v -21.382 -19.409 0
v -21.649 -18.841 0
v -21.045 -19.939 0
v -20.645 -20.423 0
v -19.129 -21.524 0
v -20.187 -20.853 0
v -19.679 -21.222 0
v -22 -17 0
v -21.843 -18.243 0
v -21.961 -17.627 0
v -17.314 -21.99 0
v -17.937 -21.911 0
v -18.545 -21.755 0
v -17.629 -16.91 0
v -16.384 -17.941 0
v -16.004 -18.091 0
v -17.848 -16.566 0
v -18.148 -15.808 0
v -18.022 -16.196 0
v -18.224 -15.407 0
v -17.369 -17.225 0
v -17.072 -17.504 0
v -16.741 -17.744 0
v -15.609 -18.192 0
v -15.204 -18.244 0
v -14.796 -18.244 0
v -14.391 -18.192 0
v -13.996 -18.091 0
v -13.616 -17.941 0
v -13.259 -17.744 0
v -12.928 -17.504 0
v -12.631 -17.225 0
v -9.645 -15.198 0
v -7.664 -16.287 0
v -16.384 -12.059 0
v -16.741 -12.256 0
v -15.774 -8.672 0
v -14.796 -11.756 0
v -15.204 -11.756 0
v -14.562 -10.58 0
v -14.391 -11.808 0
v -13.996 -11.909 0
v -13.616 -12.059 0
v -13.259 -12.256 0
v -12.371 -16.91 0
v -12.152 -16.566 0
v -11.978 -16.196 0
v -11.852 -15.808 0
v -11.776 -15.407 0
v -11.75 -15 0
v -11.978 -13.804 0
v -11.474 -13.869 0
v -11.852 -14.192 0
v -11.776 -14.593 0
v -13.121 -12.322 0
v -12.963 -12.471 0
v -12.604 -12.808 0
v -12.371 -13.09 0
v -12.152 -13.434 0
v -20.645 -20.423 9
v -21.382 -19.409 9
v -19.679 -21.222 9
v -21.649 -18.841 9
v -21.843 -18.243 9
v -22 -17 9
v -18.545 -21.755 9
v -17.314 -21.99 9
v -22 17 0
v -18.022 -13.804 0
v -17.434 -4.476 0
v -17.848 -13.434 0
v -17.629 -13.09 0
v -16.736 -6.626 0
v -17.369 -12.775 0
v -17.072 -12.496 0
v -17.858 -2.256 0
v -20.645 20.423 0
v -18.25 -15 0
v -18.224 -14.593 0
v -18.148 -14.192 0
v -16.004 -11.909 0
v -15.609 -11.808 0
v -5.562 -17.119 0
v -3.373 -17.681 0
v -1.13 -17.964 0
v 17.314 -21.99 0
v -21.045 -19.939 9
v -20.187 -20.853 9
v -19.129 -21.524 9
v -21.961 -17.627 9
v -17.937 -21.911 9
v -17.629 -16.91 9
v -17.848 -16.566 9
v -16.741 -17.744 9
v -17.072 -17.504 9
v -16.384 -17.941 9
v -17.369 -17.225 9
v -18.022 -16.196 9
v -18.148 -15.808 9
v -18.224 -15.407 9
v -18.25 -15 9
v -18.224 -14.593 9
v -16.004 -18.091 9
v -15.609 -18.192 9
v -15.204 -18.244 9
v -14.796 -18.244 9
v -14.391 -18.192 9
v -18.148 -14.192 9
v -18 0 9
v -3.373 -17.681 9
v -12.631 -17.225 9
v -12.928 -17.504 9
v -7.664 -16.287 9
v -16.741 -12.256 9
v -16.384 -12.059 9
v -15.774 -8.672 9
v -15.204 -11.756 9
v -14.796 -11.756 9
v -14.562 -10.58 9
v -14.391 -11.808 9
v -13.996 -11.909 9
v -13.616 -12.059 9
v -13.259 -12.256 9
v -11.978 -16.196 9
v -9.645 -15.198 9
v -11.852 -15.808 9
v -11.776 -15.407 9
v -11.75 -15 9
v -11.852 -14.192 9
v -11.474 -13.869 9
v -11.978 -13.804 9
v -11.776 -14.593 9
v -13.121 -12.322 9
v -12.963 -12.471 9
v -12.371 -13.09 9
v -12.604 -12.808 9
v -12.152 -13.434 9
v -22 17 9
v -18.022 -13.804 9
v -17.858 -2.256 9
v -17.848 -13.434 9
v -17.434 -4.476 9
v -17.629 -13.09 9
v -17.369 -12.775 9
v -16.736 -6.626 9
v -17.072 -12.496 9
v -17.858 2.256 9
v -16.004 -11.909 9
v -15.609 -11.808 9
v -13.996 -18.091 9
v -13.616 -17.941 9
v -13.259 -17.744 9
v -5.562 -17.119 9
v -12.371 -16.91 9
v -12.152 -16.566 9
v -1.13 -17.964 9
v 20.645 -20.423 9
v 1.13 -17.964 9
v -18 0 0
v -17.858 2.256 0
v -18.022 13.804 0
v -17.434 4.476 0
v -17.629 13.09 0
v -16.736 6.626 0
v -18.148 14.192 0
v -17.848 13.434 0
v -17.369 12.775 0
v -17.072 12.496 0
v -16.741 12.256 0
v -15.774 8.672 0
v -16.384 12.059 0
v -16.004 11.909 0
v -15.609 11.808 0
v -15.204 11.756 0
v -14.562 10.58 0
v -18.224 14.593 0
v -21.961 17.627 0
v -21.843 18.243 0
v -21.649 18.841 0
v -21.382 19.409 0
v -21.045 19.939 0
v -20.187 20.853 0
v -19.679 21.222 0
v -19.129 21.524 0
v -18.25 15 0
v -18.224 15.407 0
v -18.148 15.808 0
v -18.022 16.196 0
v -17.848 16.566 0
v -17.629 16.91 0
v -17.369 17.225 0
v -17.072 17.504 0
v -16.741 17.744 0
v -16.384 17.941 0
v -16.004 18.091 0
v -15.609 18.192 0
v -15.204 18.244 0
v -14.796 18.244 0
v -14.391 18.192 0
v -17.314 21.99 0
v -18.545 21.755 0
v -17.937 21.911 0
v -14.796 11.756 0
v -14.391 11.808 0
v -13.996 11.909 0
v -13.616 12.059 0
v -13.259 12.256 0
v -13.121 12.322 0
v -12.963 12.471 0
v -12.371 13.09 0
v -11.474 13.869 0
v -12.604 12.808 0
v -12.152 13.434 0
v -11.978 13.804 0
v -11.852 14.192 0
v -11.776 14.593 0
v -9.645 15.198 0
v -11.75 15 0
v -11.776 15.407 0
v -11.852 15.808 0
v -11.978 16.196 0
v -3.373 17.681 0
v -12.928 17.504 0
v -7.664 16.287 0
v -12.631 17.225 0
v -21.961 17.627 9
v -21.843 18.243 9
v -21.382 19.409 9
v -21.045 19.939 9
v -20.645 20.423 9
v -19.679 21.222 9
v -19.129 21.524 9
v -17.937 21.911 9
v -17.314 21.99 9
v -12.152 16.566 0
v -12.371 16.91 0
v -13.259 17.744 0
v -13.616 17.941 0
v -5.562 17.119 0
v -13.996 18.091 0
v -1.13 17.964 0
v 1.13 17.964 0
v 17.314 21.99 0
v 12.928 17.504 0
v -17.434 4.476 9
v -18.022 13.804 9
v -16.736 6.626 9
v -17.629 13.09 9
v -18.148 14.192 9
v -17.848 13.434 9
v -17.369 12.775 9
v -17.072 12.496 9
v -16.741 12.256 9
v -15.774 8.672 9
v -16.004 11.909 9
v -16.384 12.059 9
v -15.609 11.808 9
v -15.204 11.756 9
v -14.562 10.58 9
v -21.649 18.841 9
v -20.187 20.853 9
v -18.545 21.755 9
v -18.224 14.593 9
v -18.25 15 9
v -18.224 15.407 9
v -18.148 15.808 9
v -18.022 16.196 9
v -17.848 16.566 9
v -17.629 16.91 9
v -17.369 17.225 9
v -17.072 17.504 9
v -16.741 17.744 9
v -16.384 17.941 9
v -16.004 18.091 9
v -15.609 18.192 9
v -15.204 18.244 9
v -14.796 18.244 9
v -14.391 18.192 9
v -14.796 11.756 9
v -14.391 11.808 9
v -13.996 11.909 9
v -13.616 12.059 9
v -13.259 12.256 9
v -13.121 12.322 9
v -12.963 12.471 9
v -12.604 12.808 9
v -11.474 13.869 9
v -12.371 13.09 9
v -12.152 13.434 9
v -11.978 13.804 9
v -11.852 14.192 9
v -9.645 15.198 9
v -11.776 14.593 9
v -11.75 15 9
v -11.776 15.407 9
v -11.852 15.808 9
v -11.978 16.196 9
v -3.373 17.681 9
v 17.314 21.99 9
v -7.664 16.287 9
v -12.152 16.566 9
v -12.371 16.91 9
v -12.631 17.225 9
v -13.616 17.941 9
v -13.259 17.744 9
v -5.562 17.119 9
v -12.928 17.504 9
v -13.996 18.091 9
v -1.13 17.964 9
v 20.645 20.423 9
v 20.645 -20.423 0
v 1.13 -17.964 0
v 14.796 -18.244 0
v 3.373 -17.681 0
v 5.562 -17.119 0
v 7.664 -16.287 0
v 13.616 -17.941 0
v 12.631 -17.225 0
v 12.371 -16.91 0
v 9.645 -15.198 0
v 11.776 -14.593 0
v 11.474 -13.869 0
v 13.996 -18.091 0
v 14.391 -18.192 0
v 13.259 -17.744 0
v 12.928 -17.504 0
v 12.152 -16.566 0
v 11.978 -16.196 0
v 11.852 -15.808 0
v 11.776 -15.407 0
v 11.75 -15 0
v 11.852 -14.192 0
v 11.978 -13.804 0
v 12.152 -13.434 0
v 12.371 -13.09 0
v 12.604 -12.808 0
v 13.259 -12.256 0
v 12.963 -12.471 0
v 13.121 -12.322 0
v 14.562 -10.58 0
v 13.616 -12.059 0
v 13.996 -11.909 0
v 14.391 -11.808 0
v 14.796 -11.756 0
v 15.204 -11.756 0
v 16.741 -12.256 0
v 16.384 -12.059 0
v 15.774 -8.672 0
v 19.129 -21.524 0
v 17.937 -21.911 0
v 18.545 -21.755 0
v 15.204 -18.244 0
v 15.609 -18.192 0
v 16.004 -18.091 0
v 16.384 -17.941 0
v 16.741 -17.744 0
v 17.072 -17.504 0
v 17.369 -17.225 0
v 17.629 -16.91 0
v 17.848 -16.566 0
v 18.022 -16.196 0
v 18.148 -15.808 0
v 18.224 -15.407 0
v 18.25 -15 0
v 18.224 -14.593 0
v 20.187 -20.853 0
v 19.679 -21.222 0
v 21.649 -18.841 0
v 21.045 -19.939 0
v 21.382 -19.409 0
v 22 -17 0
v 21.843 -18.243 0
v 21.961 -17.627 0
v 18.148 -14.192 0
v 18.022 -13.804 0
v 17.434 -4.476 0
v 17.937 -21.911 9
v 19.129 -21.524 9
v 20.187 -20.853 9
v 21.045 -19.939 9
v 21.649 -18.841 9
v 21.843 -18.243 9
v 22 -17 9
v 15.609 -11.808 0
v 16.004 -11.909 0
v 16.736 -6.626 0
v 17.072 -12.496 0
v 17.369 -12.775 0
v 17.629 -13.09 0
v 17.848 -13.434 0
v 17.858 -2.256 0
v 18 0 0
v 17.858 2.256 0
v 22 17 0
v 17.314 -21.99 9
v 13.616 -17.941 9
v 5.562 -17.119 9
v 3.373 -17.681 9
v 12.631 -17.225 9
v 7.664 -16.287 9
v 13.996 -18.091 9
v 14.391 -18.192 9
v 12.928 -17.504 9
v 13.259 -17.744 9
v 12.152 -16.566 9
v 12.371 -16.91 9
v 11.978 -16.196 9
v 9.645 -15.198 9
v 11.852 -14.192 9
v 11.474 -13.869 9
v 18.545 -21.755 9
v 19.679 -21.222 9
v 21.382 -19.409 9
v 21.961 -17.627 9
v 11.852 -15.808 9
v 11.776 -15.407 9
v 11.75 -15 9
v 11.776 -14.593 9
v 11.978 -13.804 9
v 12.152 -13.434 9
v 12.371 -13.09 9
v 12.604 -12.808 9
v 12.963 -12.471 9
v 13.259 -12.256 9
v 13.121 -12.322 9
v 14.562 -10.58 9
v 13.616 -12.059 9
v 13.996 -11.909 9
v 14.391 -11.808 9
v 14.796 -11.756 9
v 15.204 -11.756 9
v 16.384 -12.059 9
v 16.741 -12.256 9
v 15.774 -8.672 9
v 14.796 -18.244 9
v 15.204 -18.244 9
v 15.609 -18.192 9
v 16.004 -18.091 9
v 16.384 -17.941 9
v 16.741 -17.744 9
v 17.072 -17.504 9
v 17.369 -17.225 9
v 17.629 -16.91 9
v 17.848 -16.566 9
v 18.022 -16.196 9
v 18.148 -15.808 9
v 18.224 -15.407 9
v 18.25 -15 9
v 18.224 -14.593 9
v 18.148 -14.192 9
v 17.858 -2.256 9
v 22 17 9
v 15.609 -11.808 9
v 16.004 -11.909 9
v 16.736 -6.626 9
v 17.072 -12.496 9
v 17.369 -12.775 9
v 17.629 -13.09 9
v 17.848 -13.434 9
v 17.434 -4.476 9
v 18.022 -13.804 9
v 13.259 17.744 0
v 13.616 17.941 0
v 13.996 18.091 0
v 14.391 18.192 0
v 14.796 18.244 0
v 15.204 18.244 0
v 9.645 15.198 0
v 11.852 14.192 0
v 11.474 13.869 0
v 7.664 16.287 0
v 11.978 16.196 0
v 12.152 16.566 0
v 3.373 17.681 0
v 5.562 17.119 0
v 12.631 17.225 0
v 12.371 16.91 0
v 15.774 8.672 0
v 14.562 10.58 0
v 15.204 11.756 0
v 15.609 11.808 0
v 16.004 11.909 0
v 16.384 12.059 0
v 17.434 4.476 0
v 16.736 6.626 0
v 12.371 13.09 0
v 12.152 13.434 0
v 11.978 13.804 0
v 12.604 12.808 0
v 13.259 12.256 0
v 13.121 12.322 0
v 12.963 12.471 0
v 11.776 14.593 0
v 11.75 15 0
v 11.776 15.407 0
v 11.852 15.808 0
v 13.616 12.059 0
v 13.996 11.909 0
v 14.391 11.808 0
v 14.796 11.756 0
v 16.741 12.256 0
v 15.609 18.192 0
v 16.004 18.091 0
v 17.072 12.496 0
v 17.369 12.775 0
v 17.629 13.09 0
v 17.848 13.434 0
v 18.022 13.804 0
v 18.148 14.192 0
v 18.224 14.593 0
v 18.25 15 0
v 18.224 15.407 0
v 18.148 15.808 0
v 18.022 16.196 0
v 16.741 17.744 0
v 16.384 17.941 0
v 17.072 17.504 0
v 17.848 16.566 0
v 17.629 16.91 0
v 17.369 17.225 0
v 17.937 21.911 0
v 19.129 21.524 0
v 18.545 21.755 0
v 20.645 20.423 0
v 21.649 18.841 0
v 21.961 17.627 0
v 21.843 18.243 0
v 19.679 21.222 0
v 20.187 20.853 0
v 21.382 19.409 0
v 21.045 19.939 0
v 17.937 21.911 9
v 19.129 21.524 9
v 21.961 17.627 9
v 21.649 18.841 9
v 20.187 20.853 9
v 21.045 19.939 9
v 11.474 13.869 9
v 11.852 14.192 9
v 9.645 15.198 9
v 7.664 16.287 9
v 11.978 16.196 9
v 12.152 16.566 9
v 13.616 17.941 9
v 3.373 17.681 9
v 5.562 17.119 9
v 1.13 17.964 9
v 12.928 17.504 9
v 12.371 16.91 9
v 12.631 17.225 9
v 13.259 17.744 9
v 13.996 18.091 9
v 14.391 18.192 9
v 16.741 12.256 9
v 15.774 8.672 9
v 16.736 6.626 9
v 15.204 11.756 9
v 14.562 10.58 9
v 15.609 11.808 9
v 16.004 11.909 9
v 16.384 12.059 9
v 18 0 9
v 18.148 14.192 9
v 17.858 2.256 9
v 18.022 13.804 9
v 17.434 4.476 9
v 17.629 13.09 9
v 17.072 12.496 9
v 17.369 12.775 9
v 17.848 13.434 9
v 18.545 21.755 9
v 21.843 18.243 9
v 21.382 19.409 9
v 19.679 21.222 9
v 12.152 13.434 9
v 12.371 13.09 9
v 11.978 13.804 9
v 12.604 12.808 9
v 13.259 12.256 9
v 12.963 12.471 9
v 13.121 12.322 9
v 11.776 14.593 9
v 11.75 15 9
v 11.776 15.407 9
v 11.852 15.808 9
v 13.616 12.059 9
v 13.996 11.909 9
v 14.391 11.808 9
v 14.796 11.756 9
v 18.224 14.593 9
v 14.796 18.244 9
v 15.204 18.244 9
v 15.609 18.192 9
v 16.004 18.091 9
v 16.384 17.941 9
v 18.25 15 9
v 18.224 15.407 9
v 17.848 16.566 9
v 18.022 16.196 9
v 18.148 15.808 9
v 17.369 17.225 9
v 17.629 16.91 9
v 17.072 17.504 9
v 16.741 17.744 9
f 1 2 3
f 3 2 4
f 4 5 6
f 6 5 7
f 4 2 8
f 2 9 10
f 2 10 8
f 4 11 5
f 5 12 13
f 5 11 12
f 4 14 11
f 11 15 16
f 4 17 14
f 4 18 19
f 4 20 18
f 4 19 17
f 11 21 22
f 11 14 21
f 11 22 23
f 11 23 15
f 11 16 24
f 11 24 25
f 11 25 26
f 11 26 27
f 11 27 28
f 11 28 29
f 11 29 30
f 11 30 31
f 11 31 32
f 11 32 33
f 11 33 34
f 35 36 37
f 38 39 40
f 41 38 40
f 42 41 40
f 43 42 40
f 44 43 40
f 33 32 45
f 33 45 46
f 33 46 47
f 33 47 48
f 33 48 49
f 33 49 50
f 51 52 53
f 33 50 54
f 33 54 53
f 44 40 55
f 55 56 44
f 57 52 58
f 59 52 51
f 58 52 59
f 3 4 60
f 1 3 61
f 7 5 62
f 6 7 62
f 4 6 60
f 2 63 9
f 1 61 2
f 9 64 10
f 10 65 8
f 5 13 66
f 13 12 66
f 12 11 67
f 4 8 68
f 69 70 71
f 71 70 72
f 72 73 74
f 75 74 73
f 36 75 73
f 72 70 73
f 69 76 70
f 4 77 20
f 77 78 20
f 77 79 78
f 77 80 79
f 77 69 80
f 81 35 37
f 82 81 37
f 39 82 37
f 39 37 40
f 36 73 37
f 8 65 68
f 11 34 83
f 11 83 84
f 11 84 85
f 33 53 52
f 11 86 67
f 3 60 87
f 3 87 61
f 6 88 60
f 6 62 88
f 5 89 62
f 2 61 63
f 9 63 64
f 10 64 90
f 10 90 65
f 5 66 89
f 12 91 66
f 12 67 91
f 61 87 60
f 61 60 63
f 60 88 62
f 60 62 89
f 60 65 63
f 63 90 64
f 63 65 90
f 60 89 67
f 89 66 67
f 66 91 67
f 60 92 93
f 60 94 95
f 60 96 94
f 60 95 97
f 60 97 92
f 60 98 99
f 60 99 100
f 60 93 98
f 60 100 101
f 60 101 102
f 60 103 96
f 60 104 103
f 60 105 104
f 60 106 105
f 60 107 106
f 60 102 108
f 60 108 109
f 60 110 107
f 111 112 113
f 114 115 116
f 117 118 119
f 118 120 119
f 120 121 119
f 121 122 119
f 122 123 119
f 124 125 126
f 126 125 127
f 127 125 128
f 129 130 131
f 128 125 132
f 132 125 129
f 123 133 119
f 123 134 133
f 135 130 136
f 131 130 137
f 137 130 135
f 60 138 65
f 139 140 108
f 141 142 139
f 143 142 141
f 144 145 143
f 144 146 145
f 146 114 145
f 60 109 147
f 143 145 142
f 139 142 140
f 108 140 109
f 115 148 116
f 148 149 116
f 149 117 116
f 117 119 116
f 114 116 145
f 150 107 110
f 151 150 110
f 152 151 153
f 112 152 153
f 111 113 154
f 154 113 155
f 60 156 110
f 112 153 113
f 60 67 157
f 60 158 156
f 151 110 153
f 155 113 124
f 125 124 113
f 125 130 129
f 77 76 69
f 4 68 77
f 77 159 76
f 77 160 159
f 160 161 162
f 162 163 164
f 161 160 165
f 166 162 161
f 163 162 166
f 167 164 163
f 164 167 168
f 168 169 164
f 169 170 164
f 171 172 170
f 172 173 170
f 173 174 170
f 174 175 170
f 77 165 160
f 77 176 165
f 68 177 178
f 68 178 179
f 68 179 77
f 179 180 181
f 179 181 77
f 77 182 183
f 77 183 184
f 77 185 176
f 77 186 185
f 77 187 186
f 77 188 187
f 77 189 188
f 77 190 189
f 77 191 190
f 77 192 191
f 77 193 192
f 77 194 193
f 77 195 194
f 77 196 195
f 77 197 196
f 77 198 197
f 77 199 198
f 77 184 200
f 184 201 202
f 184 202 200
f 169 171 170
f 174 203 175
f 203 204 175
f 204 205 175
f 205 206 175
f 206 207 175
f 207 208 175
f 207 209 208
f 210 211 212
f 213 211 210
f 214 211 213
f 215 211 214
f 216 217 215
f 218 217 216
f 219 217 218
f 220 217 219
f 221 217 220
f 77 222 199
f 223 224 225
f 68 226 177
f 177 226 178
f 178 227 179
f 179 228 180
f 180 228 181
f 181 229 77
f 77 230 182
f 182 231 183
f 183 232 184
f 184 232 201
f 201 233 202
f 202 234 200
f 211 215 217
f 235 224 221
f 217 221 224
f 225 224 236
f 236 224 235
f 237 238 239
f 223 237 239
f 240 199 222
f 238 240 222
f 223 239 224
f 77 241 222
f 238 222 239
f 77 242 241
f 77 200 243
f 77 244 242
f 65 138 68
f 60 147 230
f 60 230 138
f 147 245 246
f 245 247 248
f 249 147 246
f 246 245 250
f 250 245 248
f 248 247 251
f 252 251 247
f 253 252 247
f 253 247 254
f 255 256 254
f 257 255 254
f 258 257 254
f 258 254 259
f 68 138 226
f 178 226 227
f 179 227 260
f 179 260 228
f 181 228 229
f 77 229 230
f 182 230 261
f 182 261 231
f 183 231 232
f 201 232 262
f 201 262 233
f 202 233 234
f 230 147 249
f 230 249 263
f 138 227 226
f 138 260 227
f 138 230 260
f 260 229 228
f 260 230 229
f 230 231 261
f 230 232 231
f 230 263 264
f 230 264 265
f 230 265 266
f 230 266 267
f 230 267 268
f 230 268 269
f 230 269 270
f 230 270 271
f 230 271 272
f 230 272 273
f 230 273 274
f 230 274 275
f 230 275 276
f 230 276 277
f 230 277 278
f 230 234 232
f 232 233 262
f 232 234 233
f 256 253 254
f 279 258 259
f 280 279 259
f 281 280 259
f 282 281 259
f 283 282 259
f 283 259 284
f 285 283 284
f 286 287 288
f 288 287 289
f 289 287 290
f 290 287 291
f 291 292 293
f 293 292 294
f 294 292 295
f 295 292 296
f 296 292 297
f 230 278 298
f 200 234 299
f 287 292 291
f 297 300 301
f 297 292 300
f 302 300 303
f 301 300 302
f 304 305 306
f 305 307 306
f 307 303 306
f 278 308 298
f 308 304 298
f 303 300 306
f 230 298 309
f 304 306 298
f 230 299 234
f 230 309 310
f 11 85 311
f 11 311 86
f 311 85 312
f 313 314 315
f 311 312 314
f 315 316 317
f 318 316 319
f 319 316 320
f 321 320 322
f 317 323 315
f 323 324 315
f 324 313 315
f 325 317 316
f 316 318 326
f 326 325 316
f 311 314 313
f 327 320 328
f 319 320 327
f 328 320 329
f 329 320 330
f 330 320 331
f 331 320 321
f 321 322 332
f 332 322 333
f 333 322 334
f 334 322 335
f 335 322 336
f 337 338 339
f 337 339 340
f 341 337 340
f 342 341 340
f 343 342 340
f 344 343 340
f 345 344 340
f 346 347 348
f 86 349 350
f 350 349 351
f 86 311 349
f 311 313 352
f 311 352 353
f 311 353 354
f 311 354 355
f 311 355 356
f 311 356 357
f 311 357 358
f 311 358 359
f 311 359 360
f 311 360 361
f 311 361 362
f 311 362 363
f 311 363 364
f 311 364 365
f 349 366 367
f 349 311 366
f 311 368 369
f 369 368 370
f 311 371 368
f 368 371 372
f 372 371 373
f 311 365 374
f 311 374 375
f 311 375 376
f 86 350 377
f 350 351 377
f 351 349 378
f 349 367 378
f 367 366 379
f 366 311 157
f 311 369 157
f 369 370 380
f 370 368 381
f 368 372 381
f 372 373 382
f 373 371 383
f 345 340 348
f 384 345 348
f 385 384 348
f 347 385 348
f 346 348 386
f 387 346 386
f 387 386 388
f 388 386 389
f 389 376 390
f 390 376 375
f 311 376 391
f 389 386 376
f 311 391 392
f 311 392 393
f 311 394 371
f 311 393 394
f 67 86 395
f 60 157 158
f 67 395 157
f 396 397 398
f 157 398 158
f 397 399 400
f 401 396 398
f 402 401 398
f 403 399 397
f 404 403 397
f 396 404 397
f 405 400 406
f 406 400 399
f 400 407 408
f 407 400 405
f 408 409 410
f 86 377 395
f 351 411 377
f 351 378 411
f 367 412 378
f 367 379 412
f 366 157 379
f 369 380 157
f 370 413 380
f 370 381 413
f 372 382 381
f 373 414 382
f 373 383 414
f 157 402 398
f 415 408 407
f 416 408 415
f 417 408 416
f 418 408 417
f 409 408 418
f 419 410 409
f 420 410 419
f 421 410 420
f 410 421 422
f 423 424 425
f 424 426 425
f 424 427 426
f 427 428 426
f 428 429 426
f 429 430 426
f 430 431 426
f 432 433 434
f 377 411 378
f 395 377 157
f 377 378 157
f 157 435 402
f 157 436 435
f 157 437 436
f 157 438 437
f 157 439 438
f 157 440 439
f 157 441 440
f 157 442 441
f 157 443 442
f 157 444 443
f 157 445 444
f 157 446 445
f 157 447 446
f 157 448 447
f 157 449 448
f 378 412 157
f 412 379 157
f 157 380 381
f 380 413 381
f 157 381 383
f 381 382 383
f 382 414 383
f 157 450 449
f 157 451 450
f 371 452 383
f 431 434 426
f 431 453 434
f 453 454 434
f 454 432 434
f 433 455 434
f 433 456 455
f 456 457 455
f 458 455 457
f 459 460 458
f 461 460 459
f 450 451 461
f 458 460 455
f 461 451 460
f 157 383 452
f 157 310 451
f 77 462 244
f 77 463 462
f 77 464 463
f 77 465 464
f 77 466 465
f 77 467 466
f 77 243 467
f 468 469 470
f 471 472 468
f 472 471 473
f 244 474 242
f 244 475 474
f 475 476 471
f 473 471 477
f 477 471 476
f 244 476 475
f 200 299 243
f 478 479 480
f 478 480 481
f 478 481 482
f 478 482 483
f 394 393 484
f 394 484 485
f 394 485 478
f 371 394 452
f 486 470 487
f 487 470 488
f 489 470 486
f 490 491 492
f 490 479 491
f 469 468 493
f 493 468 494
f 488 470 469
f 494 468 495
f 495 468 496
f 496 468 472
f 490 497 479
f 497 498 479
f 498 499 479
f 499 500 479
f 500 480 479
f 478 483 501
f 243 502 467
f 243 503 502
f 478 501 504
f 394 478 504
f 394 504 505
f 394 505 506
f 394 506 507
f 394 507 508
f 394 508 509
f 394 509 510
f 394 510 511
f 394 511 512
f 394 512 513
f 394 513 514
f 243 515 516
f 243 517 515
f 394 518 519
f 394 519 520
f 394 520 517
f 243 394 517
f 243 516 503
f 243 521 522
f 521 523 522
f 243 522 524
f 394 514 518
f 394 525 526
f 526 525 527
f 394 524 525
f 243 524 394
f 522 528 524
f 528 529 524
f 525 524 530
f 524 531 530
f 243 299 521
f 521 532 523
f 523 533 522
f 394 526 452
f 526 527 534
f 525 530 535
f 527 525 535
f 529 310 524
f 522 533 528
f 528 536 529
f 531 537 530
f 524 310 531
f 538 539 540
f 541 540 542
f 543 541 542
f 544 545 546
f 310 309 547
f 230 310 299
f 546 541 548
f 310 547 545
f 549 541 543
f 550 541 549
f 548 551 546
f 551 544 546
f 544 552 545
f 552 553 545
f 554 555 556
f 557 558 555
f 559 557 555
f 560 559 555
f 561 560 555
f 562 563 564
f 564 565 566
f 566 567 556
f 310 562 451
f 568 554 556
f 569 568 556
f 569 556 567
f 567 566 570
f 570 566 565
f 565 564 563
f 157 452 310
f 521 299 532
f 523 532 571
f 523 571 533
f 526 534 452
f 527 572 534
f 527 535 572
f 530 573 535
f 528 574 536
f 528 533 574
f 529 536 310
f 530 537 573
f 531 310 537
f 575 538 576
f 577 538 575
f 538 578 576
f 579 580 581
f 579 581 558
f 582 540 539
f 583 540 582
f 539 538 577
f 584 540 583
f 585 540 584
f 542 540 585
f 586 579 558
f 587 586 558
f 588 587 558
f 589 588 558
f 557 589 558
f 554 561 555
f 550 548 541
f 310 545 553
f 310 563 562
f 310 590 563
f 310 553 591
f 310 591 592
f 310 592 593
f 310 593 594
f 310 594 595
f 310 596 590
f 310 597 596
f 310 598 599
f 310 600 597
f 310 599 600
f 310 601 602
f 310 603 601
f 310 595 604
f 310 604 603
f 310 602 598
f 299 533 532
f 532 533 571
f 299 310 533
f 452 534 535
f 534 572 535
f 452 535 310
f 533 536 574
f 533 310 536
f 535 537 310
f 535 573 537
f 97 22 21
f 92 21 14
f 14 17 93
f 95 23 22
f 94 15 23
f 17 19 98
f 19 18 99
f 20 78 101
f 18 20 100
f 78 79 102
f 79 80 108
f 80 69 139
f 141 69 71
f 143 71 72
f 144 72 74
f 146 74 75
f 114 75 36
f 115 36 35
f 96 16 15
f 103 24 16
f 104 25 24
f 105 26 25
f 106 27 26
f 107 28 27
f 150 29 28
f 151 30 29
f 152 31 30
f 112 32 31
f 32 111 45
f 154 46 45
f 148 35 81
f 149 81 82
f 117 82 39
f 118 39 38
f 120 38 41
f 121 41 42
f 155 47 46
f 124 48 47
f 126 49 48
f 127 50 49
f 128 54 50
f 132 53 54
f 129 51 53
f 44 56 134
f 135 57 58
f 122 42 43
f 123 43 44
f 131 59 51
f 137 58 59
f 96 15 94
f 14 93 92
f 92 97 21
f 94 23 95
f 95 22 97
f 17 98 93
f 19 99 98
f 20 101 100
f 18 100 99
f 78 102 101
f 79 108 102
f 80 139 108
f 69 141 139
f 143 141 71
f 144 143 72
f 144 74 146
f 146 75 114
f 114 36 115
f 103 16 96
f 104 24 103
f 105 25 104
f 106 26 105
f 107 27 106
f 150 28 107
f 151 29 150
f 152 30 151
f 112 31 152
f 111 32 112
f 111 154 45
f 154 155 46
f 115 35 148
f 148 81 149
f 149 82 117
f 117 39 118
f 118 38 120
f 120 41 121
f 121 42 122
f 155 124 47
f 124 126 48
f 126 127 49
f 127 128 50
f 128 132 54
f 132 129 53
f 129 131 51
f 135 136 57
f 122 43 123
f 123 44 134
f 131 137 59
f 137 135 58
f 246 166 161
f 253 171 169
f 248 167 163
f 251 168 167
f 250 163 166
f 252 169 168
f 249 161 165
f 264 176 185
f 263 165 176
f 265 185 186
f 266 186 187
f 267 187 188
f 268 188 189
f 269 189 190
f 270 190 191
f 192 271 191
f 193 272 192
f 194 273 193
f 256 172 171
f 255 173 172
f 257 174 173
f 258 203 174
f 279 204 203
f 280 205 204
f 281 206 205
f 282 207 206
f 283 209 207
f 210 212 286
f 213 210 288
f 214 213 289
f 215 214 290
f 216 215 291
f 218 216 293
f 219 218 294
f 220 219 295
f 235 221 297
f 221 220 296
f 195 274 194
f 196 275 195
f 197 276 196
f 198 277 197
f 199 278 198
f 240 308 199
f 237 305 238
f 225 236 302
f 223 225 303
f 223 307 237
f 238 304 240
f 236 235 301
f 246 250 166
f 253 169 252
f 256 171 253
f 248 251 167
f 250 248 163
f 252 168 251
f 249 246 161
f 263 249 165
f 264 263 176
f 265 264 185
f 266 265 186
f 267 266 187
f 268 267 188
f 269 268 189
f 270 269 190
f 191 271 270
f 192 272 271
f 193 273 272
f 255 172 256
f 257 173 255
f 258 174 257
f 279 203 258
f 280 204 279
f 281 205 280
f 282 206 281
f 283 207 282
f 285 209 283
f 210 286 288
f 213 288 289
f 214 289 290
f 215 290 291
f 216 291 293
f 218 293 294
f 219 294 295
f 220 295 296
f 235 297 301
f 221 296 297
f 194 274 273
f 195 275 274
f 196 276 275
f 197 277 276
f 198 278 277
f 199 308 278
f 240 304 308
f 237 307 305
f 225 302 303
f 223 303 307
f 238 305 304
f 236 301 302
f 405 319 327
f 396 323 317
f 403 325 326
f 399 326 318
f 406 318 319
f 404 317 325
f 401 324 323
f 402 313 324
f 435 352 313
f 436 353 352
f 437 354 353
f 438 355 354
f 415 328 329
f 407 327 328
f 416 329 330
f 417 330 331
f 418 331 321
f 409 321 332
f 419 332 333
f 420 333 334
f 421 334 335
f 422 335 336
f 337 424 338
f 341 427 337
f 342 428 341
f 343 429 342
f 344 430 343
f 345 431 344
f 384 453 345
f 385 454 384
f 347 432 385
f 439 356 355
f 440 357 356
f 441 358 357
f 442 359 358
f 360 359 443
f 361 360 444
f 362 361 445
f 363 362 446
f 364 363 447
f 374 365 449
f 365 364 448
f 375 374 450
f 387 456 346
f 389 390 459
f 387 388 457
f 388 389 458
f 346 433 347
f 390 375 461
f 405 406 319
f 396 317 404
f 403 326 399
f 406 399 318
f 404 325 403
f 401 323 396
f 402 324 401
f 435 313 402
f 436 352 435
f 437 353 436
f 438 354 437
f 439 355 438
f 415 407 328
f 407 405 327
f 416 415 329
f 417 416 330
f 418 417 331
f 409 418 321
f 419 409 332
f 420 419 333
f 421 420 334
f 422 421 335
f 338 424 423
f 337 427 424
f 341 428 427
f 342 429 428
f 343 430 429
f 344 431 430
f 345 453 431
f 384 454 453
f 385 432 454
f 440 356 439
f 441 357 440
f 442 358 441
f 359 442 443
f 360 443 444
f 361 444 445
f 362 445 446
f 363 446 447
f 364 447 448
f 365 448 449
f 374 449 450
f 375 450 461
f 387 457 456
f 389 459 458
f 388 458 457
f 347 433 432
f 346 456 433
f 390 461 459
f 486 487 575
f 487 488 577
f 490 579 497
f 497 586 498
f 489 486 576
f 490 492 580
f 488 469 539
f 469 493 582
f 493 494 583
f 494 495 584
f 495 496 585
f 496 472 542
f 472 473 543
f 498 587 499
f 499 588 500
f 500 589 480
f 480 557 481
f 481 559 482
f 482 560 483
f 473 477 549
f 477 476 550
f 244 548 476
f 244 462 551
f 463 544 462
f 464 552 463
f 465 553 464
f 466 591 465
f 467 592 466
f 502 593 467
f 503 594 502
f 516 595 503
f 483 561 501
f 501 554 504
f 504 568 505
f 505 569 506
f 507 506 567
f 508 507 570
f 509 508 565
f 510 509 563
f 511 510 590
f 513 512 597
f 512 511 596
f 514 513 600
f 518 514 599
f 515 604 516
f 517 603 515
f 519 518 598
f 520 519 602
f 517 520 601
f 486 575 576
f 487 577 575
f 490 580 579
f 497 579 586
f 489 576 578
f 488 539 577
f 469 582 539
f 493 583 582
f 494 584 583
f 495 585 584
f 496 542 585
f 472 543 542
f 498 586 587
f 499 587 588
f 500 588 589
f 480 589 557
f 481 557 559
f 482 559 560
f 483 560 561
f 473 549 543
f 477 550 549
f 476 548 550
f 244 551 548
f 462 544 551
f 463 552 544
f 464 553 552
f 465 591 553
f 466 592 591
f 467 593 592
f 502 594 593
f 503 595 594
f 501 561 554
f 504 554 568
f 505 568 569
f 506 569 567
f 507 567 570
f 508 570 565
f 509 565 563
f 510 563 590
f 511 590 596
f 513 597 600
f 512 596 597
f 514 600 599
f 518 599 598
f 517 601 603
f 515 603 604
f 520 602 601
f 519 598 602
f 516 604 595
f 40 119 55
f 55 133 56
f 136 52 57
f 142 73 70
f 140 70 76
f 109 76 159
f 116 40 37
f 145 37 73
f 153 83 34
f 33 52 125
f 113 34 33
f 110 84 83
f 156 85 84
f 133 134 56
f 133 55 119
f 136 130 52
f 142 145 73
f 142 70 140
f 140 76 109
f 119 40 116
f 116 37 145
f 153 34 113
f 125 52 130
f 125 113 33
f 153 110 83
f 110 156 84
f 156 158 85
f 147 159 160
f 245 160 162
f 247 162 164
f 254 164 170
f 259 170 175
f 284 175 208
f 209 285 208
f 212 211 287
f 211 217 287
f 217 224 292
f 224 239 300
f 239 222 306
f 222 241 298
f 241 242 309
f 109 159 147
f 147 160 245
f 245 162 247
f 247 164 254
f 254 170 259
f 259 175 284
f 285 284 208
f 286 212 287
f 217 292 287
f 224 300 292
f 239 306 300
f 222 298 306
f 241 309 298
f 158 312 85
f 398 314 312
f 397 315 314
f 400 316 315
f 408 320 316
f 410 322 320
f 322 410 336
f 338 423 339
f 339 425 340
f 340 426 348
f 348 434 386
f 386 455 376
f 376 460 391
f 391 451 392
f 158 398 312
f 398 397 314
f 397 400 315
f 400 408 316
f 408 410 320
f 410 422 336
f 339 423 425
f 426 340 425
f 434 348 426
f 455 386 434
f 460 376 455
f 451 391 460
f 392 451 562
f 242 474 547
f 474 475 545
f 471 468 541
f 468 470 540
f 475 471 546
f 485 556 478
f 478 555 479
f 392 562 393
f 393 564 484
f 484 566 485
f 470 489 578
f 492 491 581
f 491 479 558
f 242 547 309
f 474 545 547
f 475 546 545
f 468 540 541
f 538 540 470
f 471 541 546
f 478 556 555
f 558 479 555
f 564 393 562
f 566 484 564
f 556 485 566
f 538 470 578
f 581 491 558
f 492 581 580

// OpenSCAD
$fn = 50;

difference() {
	union() {
		hull() {
			translate(v = [-17.0, 17.0, 0]) {
				cylinder(h = 9, r = 5);
			}
			translate(v = [17.0, 17.0, 0]) {
				cylinder(h = 9, r = 5);
			}
			translate(v = [-17.0, -17.0, 0]) {
				cylinder(h = 9, r = 5);
			}
			translate(v = [17.0, -17.0, 0]) {
				cylinder(h = 9, r = 5);
			}
		}
	}
	union() {
		translate(v = [-15.0, -15.0, -100.0]) {
			cylinder(h = 200, r = 3.25);
		}
		translate(v = [-15.0, 15.0, -100.0]) {
			cylinder(h = 200, r = 3.25);
		}
		translate(v = [15.0, -15.0, -100.0]) {
			cylinder(h = 200, r = 3.25);
		}
		translate(v = [15.0, 15.0, -100.0]) {
			cylinder(h = 200, r = 3.25);
		}
		translate(v = [-15.0, -15.0, -100.0]) {
			cylinder(h = 200, r = 1.8);
		}
		translate(v = [-15.0, 15.0, -100.0]) {
			cylinder(h = 200, r = 1.8);
		}
		translate(v = [15.0, -15.0, -100.0]) {
			cylinder(h = 200, r = 1.8);
		}
		translate(v = [15.0, 15.0, -100.0]) {
			cylinder(h = 200, r = 1.8);
		}
		cylinder(h = 9, r = 18.0);
	}
}
